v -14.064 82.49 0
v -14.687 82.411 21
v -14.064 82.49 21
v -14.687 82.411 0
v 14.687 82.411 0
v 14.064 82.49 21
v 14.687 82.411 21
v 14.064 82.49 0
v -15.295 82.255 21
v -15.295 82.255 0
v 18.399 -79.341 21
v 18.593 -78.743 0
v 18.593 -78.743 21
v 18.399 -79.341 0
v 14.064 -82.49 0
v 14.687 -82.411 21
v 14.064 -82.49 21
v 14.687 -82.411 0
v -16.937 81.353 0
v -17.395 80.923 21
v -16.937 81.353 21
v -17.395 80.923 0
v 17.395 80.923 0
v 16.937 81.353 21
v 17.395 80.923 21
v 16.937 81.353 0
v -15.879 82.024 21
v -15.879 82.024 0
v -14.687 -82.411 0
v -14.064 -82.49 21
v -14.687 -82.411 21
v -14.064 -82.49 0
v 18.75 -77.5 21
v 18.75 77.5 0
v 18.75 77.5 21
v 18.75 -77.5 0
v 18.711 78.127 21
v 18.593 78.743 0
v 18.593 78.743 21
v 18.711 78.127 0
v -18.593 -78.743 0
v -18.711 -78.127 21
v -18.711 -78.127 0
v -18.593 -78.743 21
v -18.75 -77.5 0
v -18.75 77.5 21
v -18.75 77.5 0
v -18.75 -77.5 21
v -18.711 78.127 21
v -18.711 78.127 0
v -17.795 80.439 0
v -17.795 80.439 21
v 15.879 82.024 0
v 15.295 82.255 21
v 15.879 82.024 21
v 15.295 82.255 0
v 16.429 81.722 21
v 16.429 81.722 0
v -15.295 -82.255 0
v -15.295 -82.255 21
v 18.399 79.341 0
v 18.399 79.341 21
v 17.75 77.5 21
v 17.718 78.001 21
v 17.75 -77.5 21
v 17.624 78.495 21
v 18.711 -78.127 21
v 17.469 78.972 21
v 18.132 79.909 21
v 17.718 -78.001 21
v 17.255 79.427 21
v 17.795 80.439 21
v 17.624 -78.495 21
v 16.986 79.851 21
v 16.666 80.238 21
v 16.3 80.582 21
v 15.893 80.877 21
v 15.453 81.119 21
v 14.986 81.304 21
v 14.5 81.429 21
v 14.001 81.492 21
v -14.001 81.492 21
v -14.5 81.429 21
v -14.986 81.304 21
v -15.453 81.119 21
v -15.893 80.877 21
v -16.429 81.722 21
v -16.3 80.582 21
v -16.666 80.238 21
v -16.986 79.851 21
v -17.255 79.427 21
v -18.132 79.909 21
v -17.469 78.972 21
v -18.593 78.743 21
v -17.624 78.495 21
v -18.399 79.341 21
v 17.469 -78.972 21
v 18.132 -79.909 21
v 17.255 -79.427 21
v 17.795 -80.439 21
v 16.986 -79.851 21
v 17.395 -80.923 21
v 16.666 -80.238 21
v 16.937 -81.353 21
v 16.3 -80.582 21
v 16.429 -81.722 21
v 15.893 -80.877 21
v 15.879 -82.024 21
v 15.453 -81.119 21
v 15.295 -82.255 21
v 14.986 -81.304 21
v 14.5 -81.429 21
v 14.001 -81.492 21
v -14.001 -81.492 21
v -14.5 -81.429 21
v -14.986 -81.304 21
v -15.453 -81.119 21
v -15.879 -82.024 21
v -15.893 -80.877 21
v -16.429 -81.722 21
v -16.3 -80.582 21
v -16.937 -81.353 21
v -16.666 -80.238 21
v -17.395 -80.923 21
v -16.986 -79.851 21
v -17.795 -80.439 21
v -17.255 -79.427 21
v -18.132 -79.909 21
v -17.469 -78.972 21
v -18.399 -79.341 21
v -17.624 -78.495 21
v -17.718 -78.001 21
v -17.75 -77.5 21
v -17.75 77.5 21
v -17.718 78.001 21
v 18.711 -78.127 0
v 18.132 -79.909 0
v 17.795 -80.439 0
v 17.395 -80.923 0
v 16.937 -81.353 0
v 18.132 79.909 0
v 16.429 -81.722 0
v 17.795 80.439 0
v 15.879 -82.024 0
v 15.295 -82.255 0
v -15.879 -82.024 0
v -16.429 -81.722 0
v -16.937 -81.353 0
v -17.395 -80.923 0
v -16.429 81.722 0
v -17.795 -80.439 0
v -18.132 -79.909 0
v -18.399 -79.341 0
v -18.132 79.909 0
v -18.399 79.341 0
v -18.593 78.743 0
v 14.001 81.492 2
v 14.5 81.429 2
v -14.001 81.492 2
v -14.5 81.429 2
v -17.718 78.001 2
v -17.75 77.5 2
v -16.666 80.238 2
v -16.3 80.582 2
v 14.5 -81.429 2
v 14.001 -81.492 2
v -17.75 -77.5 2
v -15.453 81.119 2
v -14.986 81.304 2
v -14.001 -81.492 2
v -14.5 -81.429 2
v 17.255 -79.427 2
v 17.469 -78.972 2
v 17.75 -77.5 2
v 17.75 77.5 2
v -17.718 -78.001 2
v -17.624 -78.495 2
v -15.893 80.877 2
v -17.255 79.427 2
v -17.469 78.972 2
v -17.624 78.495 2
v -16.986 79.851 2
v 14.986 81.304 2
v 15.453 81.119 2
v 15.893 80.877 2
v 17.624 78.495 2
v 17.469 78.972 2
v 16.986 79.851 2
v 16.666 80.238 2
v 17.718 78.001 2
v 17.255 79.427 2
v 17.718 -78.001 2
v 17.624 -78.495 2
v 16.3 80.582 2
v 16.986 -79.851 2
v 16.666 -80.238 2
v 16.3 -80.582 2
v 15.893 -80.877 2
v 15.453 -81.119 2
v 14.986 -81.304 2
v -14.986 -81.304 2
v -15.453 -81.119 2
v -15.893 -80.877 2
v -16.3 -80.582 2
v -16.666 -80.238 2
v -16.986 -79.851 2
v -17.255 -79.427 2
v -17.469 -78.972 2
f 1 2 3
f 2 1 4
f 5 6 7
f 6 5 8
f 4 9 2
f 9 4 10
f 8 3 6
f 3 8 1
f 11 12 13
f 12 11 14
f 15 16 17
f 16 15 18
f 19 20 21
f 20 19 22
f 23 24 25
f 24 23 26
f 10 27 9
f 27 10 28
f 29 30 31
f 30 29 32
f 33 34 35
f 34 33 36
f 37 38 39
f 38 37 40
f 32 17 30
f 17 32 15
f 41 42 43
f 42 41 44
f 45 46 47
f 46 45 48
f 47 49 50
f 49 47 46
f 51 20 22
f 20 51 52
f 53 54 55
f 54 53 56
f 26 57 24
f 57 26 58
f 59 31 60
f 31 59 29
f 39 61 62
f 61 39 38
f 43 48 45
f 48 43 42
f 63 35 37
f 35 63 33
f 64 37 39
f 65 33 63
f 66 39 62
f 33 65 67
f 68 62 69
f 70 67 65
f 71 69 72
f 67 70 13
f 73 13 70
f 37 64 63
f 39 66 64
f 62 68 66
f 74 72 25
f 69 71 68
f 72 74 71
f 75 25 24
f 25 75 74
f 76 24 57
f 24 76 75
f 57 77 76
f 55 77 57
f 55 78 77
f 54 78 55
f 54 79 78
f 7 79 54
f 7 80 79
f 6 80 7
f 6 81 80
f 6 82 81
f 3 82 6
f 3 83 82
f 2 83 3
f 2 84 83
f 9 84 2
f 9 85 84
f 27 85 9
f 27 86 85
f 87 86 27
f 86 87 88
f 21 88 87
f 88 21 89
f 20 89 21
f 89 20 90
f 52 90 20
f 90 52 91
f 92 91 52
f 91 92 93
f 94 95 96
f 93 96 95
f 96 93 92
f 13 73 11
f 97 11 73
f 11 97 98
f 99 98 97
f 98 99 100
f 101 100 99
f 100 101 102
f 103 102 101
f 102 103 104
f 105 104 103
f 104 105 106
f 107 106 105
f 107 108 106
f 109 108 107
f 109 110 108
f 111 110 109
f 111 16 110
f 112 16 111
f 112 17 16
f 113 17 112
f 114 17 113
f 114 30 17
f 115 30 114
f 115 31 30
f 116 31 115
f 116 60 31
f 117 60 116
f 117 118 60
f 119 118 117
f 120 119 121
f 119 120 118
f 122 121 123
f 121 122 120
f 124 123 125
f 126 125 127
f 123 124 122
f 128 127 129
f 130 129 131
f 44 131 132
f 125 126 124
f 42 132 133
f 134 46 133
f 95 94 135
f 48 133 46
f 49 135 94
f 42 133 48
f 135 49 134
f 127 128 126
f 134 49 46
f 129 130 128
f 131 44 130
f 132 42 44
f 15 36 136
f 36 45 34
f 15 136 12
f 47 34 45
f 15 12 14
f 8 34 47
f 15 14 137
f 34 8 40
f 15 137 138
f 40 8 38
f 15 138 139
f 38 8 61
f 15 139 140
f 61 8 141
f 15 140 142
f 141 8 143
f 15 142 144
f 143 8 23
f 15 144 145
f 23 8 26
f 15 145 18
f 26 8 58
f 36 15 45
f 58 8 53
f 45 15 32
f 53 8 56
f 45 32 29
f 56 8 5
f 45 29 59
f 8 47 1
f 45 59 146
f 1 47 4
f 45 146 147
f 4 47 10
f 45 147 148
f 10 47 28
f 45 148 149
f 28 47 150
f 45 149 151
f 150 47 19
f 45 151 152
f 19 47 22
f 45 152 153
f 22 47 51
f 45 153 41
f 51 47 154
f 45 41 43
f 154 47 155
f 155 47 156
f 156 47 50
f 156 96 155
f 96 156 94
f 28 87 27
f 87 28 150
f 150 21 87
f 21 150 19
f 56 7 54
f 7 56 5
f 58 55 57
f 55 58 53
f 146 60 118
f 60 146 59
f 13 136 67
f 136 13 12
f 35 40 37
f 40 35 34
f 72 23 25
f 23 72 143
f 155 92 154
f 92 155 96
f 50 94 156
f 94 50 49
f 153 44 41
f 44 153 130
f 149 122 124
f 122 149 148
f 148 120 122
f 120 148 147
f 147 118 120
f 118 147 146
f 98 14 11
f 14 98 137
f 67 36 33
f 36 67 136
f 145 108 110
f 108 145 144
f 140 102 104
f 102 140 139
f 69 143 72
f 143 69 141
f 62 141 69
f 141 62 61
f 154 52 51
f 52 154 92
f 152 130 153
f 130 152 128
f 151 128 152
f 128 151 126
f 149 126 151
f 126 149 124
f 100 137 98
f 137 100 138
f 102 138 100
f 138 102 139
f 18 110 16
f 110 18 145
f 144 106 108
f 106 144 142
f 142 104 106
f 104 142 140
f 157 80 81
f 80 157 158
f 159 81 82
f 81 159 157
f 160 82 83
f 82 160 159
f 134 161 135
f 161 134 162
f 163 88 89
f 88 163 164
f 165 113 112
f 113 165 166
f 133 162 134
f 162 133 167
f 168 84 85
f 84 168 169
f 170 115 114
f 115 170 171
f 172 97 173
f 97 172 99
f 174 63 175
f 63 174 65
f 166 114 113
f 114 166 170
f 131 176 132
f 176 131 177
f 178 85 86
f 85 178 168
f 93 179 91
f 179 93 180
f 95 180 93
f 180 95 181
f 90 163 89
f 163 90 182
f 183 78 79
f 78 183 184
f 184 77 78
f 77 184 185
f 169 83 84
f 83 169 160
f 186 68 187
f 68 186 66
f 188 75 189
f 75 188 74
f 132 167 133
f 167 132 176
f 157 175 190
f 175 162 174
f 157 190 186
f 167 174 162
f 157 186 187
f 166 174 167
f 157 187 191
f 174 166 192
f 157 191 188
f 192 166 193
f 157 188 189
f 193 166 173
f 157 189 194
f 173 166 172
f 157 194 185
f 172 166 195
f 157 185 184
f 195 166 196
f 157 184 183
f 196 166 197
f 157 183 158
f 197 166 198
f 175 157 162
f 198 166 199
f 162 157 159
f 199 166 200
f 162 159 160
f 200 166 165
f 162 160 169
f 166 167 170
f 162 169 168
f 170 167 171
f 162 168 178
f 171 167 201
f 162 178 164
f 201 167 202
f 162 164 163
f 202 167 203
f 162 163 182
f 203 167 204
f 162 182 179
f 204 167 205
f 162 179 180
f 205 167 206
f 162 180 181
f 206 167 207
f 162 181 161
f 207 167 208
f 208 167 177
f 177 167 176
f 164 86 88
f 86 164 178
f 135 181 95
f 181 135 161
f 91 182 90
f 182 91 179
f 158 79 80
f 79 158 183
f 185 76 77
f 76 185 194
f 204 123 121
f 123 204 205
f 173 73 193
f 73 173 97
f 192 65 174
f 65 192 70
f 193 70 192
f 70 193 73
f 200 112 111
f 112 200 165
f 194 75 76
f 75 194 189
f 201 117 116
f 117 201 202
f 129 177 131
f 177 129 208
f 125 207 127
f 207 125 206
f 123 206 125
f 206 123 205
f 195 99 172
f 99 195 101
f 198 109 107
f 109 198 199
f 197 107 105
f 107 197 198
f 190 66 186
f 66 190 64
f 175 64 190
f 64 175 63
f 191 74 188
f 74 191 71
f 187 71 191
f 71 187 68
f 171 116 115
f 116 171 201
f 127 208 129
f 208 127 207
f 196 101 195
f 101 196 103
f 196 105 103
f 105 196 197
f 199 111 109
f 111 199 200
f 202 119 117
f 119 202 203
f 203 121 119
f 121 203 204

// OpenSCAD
$fn = 50;


difference() {
	union() {
		hull() {
			translate(v = [-13.7500000000, 77.5000000000, 0]) {
				cylinder(h = 21, r = 5);
			}
			translate(v = [13.7500000000, 77.5000000000, 0]) {
				cylinder(h = 21, r = 5);
			}
			translate(v = [-13.7500000000, -77.5000000000, 0]) {
				cylinder(h = 21, r = 5);
			}
			translate(v = [13.7500000000, -77.5000000000, 0]) {
				cylinder(h = 21, r = 5);
			}
		}
	}
	union() {
		translate(v = [0, 0, 2]) {
			hull() {
				translate(v = [-13.7500000000, 77.5000000000, 0]) {
					cylinder(h = 19, r = 4);
				}
				translate(v = [13.7500000000, 77.5000000000, 0]) {
					cylinder(h = 19, r = 4);
				}
				translate(v = [-13.7500000000, -77.5000000000, 0]) {
					cylinder(h = 19, r = 4);
				}
				translate(v = [13.7500000000, -77.5000000000, 0]) {
					cylinder(h = 19, r = 4);
				}
			}
		}
	}
}
